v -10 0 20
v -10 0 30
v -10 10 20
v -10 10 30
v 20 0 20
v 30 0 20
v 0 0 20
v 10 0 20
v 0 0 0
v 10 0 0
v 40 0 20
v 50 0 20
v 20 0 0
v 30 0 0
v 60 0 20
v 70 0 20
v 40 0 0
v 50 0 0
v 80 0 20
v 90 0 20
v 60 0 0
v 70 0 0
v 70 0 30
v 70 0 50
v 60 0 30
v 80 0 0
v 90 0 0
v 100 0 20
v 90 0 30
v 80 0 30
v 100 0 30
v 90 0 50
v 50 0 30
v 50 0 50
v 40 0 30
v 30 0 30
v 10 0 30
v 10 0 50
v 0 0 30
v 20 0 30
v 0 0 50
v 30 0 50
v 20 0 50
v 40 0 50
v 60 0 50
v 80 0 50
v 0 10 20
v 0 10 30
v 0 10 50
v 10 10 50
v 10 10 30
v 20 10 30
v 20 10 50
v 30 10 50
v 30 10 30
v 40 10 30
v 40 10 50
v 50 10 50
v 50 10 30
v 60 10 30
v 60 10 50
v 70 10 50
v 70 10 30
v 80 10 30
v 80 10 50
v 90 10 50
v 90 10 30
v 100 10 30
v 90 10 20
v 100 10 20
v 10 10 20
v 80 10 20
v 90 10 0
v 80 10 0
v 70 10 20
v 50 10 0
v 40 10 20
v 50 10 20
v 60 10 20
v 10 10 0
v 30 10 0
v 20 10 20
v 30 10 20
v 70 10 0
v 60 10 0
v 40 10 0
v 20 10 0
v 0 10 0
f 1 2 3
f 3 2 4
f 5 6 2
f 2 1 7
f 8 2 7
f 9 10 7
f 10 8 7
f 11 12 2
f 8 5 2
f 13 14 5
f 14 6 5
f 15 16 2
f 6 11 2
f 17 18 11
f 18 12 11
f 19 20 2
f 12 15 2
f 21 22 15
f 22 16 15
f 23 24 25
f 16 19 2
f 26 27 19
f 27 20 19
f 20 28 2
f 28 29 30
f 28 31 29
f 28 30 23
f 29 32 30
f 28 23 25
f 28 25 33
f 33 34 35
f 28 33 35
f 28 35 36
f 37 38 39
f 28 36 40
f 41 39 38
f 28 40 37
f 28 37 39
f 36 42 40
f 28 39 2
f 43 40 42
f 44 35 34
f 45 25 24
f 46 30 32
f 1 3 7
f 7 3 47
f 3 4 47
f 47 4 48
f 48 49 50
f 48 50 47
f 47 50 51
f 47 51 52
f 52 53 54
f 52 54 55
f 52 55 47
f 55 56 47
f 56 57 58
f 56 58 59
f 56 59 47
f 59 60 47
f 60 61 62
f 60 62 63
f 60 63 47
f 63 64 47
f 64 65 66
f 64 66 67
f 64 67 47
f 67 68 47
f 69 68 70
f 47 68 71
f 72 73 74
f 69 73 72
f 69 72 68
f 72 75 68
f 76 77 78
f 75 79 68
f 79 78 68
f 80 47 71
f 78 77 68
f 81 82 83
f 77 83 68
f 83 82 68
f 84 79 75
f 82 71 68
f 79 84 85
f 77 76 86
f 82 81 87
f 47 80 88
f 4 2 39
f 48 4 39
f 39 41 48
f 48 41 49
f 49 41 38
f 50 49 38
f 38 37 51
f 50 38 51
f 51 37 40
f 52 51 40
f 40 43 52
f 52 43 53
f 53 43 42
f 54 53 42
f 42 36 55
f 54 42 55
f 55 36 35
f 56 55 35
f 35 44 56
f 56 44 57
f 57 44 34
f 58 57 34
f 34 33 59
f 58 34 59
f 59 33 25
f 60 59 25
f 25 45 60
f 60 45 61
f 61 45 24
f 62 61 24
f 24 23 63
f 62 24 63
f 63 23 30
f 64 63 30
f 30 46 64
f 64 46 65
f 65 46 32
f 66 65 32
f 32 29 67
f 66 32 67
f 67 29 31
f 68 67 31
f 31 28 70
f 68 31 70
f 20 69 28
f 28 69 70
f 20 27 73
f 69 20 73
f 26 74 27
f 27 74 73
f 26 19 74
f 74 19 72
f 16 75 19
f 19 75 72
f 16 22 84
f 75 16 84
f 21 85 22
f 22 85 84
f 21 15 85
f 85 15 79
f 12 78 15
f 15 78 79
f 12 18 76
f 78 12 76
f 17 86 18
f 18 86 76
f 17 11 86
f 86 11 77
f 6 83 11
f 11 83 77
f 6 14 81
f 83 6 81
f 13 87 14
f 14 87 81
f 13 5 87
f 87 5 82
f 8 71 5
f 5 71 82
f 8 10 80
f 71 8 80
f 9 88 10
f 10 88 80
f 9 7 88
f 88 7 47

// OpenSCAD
module fence(num_planks, plank_width, plank_thickness, plank_height, spacing, connector_height){
	union(){
		for (i=[0:num_planks-1]){
			translate([i*(spacing + plank_width), 0, 0])
				cube([plank_width, plank_thickness, plank_height]);
		}
		translate([-plank_width, 0, .5*(plank_height - connector_height)])
			cube([num_planks * (plank_width + spacing) + spacing, plank_thickness, connector_height]);
	}
}

num_planks = 5;
plank_width = 10;
plank_thickness = 10;
plank_height = 50;
spacing = 10;
connector_height = 10;

fence(num_planks, plank_width, plank_thickness, plank_height, spacing, connector_height);
